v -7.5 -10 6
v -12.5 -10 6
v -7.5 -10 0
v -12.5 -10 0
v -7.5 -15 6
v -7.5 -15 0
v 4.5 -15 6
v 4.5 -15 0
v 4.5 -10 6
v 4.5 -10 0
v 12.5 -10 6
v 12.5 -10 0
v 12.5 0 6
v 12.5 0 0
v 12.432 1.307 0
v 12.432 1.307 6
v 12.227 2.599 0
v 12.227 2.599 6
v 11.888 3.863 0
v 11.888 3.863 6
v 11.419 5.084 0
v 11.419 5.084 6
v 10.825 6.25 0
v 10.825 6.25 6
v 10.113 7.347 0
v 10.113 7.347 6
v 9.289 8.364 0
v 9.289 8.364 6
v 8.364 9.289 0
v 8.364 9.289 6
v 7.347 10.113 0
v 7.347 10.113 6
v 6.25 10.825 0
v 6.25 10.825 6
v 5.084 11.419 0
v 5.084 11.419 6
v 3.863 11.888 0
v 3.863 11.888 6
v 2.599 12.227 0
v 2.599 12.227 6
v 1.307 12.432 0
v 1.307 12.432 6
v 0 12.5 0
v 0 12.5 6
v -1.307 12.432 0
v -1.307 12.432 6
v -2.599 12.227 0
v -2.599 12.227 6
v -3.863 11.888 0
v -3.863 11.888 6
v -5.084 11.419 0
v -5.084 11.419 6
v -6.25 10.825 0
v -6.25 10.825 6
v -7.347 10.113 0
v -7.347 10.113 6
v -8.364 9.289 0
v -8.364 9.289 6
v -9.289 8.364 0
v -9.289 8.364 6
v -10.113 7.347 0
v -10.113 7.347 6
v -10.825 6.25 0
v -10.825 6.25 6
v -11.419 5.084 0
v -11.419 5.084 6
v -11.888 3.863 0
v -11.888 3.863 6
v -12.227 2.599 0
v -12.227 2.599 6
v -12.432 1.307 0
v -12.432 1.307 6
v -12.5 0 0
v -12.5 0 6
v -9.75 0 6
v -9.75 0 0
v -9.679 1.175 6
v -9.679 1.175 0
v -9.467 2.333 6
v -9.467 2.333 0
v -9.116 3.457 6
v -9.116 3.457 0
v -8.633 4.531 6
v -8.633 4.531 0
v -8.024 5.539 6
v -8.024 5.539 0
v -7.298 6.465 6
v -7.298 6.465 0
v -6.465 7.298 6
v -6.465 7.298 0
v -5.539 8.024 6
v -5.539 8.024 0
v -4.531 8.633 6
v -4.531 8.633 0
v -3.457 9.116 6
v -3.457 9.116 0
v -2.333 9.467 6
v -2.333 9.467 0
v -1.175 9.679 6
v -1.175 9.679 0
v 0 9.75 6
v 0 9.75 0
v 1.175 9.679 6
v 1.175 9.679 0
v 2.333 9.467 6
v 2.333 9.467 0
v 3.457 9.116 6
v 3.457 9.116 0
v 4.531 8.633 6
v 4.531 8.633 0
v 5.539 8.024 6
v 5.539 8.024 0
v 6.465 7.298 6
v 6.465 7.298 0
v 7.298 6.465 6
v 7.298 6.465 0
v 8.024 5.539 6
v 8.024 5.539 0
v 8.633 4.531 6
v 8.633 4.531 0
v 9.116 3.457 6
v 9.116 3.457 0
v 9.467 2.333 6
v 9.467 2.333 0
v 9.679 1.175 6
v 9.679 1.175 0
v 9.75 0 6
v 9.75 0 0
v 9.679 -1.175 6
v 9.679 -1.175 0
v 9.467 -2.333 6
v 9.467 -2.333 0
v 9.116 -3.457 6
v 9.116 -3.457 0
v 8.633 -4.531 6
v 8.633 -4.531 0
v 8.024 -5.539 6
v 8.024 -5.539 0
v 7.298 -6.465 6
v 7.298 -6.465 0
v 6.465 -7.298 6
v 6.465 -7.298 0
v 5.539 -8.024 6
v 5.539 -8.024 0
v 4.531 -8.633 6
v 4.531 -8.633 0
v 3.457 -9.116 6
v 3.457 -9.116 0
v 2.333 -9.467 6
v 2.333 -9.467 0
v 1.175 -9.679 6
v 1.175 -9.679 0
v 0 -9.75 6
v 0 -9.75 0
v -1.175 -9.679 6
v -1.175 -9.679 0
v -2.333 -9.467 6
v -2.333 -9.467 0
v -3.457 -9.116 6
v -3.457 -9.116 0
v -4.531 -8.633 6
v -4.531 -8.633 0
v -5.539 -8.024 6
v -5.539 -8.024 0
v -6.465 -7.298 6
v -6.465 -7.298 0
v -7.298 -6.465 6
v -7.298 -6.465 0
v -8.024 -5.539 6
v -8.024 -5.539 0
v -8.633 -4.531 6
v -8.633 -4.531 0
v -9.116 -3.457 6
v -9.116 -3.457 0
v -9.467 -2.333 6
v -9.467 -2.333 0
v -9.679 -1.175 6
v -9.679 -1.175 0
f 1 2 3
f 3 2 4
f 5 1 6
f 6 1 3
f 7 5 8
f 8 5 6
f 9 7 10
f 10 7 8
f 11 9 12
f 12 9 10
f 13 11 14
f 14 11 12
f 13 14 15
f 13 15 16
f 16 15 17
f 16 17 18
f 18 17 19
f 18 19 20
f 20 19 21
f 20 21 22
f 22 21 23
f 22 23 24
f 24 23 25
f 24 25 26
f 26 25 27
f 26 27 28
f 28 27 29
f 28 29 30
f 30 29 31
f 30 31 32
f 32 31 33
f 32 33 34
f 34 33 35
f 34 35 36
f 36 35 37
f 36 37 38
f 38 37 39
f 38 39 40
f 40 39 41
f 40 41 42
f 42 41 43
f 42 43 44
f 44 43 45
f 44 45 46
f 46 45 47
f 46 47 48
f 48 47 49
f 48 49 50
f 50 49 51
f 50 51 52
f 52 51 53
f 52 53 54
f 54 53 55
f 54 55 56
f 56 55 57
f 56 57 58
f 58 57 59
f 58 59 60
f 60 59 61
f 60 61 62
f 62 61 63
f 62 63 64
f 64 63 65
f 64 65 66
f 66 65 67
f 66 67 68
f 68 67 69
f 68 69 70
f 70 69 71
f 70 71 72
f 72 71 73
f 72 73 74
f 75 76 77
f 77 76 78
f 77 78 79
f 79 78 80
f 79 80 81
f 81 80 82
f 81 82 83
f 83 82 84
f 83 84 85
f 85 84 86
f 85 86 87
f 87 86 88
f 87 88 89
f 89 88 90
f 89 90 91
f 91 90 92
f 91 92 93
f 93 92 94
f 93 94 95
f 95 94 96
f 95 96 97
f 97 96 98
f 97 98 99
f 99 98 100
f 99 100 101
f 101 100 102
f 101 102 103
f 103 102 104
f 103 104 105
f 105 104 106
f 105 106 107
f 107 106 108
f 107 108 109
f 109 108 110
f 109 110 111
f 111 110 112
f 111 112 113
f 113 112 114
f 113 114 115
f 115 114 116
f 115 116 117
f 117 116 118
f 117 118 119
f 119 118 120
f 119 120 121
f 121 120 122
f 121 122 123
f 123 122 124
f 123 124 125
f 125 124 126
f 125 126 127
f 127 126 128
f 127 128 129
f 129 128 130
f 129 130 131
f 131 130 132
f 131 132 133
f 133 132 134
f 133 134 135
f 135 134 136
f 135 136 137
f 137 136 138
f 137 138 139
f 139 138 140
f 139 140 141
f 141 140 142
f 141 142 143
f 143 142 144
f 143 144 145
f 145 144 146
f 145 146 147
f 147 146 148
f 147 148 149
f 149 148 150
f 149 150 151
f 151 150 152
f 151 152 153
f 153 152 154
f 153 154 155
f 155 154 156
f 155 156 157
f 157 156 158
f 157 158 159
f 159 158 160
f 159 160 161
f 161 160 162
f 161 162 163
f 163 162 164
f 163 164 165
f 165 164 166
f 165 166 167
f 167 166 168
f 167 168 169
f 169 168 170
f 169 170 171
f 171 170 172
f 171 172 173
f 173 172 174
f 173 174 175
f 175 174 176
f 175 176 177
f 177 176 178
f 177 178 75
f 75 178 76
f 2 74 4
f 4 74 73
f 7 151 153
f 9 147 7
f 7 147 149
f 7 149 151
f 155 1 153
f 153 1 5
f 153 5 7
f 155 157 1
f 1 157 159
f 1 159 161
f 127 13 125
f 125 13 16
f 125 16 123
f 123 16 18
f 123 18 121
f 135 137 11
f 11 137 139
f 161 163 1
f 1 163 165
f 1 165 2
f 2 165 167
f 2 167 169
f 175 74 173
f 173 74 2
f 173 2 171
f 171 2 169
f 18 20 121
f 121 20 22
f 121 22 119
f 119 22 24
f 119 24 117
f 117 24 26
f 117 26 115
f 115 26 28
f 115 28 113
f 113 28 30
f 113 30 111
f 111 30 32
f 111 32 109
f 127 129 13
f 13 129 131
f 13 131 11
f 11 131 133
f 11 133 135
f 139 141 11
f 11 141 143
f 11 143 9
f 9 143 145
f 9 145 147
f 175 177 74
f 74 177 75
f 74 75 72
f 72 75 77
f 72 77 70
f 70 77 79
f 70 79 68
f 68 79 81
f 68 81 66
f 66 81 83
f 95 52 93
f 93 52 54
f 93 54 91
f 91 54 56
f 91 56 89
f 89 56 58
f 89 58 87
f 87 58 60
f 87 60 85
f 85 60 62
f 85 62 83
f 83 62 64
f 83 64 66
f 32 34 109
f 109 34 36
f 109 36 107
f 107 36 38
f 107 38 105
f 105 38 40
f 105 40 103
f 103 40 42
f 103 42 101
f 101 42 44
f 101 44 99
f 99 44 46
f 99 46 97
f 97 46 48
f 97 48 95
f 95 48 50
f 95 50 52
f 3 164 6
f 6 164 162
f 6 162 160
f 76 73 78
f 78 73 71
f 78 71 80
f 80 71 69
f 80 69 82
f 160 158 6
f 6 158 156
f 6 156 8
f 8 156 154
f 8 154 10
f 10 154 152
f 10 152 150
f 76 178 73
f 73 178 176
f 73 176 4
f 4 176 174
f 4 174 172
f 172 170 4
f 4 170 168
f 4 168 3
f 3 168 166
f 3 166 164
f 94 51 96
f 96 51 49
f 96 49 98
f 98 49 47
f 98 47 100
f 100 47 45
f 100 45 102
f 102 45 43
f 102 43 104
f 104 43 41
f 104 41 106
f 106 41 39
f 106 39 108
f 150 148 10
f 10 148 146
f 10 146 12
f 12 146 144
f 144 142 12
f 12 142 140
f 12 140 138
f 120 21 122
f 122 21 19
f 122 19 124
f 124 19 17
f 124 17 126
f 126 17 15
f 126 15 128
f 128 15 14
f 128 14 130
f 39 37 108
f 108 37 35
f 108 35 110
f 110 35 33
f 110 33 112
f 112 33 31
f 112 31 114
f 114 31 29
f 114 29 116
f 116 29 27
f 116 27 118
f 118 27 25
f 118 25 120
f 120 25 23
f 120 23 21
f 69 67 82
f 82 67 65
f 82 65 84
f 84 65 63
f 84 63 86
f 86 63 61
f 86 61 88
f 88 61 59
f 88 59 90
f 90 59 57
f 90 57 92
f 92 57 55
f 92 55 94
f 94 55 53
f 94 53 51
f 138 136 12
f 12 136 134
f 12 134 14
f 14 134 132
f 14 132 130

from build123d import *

# Parameters (mm, degrees)
CROQUIS1_R              = 9.75
SALIENTE_EXTRUIR1_DEPTH = 6


with BuildPart() as part:
    # Croquis1 → Saliente-Extruir1 (new body)
    with BuildSketch(Plane.XY):
        with BuildLine():
            ThreePointArc((12.5, 0), (0, 12.5), (-12.5, 0))
            Line((-12.5, 0), (-12.5, -10))
            Line((-12.5, -10), (-7.5, -10))
            Line((-7.5, -10), (-7.5, -15))
            Line((-7.5, -15), (4.5, -15))
            Line((4.5, -15), (4.5, -10))
            Line((4.5, -10), (12.5, -10))
            Line((12.5, -10), (12.5, 0))
        make_face()
        Circle(CROQUIS1_R, mode=Mode.SUBTRACT)
    extrude(amount=SALIENTE_EXTRUIR1_DEPTH)


solid = part.part
